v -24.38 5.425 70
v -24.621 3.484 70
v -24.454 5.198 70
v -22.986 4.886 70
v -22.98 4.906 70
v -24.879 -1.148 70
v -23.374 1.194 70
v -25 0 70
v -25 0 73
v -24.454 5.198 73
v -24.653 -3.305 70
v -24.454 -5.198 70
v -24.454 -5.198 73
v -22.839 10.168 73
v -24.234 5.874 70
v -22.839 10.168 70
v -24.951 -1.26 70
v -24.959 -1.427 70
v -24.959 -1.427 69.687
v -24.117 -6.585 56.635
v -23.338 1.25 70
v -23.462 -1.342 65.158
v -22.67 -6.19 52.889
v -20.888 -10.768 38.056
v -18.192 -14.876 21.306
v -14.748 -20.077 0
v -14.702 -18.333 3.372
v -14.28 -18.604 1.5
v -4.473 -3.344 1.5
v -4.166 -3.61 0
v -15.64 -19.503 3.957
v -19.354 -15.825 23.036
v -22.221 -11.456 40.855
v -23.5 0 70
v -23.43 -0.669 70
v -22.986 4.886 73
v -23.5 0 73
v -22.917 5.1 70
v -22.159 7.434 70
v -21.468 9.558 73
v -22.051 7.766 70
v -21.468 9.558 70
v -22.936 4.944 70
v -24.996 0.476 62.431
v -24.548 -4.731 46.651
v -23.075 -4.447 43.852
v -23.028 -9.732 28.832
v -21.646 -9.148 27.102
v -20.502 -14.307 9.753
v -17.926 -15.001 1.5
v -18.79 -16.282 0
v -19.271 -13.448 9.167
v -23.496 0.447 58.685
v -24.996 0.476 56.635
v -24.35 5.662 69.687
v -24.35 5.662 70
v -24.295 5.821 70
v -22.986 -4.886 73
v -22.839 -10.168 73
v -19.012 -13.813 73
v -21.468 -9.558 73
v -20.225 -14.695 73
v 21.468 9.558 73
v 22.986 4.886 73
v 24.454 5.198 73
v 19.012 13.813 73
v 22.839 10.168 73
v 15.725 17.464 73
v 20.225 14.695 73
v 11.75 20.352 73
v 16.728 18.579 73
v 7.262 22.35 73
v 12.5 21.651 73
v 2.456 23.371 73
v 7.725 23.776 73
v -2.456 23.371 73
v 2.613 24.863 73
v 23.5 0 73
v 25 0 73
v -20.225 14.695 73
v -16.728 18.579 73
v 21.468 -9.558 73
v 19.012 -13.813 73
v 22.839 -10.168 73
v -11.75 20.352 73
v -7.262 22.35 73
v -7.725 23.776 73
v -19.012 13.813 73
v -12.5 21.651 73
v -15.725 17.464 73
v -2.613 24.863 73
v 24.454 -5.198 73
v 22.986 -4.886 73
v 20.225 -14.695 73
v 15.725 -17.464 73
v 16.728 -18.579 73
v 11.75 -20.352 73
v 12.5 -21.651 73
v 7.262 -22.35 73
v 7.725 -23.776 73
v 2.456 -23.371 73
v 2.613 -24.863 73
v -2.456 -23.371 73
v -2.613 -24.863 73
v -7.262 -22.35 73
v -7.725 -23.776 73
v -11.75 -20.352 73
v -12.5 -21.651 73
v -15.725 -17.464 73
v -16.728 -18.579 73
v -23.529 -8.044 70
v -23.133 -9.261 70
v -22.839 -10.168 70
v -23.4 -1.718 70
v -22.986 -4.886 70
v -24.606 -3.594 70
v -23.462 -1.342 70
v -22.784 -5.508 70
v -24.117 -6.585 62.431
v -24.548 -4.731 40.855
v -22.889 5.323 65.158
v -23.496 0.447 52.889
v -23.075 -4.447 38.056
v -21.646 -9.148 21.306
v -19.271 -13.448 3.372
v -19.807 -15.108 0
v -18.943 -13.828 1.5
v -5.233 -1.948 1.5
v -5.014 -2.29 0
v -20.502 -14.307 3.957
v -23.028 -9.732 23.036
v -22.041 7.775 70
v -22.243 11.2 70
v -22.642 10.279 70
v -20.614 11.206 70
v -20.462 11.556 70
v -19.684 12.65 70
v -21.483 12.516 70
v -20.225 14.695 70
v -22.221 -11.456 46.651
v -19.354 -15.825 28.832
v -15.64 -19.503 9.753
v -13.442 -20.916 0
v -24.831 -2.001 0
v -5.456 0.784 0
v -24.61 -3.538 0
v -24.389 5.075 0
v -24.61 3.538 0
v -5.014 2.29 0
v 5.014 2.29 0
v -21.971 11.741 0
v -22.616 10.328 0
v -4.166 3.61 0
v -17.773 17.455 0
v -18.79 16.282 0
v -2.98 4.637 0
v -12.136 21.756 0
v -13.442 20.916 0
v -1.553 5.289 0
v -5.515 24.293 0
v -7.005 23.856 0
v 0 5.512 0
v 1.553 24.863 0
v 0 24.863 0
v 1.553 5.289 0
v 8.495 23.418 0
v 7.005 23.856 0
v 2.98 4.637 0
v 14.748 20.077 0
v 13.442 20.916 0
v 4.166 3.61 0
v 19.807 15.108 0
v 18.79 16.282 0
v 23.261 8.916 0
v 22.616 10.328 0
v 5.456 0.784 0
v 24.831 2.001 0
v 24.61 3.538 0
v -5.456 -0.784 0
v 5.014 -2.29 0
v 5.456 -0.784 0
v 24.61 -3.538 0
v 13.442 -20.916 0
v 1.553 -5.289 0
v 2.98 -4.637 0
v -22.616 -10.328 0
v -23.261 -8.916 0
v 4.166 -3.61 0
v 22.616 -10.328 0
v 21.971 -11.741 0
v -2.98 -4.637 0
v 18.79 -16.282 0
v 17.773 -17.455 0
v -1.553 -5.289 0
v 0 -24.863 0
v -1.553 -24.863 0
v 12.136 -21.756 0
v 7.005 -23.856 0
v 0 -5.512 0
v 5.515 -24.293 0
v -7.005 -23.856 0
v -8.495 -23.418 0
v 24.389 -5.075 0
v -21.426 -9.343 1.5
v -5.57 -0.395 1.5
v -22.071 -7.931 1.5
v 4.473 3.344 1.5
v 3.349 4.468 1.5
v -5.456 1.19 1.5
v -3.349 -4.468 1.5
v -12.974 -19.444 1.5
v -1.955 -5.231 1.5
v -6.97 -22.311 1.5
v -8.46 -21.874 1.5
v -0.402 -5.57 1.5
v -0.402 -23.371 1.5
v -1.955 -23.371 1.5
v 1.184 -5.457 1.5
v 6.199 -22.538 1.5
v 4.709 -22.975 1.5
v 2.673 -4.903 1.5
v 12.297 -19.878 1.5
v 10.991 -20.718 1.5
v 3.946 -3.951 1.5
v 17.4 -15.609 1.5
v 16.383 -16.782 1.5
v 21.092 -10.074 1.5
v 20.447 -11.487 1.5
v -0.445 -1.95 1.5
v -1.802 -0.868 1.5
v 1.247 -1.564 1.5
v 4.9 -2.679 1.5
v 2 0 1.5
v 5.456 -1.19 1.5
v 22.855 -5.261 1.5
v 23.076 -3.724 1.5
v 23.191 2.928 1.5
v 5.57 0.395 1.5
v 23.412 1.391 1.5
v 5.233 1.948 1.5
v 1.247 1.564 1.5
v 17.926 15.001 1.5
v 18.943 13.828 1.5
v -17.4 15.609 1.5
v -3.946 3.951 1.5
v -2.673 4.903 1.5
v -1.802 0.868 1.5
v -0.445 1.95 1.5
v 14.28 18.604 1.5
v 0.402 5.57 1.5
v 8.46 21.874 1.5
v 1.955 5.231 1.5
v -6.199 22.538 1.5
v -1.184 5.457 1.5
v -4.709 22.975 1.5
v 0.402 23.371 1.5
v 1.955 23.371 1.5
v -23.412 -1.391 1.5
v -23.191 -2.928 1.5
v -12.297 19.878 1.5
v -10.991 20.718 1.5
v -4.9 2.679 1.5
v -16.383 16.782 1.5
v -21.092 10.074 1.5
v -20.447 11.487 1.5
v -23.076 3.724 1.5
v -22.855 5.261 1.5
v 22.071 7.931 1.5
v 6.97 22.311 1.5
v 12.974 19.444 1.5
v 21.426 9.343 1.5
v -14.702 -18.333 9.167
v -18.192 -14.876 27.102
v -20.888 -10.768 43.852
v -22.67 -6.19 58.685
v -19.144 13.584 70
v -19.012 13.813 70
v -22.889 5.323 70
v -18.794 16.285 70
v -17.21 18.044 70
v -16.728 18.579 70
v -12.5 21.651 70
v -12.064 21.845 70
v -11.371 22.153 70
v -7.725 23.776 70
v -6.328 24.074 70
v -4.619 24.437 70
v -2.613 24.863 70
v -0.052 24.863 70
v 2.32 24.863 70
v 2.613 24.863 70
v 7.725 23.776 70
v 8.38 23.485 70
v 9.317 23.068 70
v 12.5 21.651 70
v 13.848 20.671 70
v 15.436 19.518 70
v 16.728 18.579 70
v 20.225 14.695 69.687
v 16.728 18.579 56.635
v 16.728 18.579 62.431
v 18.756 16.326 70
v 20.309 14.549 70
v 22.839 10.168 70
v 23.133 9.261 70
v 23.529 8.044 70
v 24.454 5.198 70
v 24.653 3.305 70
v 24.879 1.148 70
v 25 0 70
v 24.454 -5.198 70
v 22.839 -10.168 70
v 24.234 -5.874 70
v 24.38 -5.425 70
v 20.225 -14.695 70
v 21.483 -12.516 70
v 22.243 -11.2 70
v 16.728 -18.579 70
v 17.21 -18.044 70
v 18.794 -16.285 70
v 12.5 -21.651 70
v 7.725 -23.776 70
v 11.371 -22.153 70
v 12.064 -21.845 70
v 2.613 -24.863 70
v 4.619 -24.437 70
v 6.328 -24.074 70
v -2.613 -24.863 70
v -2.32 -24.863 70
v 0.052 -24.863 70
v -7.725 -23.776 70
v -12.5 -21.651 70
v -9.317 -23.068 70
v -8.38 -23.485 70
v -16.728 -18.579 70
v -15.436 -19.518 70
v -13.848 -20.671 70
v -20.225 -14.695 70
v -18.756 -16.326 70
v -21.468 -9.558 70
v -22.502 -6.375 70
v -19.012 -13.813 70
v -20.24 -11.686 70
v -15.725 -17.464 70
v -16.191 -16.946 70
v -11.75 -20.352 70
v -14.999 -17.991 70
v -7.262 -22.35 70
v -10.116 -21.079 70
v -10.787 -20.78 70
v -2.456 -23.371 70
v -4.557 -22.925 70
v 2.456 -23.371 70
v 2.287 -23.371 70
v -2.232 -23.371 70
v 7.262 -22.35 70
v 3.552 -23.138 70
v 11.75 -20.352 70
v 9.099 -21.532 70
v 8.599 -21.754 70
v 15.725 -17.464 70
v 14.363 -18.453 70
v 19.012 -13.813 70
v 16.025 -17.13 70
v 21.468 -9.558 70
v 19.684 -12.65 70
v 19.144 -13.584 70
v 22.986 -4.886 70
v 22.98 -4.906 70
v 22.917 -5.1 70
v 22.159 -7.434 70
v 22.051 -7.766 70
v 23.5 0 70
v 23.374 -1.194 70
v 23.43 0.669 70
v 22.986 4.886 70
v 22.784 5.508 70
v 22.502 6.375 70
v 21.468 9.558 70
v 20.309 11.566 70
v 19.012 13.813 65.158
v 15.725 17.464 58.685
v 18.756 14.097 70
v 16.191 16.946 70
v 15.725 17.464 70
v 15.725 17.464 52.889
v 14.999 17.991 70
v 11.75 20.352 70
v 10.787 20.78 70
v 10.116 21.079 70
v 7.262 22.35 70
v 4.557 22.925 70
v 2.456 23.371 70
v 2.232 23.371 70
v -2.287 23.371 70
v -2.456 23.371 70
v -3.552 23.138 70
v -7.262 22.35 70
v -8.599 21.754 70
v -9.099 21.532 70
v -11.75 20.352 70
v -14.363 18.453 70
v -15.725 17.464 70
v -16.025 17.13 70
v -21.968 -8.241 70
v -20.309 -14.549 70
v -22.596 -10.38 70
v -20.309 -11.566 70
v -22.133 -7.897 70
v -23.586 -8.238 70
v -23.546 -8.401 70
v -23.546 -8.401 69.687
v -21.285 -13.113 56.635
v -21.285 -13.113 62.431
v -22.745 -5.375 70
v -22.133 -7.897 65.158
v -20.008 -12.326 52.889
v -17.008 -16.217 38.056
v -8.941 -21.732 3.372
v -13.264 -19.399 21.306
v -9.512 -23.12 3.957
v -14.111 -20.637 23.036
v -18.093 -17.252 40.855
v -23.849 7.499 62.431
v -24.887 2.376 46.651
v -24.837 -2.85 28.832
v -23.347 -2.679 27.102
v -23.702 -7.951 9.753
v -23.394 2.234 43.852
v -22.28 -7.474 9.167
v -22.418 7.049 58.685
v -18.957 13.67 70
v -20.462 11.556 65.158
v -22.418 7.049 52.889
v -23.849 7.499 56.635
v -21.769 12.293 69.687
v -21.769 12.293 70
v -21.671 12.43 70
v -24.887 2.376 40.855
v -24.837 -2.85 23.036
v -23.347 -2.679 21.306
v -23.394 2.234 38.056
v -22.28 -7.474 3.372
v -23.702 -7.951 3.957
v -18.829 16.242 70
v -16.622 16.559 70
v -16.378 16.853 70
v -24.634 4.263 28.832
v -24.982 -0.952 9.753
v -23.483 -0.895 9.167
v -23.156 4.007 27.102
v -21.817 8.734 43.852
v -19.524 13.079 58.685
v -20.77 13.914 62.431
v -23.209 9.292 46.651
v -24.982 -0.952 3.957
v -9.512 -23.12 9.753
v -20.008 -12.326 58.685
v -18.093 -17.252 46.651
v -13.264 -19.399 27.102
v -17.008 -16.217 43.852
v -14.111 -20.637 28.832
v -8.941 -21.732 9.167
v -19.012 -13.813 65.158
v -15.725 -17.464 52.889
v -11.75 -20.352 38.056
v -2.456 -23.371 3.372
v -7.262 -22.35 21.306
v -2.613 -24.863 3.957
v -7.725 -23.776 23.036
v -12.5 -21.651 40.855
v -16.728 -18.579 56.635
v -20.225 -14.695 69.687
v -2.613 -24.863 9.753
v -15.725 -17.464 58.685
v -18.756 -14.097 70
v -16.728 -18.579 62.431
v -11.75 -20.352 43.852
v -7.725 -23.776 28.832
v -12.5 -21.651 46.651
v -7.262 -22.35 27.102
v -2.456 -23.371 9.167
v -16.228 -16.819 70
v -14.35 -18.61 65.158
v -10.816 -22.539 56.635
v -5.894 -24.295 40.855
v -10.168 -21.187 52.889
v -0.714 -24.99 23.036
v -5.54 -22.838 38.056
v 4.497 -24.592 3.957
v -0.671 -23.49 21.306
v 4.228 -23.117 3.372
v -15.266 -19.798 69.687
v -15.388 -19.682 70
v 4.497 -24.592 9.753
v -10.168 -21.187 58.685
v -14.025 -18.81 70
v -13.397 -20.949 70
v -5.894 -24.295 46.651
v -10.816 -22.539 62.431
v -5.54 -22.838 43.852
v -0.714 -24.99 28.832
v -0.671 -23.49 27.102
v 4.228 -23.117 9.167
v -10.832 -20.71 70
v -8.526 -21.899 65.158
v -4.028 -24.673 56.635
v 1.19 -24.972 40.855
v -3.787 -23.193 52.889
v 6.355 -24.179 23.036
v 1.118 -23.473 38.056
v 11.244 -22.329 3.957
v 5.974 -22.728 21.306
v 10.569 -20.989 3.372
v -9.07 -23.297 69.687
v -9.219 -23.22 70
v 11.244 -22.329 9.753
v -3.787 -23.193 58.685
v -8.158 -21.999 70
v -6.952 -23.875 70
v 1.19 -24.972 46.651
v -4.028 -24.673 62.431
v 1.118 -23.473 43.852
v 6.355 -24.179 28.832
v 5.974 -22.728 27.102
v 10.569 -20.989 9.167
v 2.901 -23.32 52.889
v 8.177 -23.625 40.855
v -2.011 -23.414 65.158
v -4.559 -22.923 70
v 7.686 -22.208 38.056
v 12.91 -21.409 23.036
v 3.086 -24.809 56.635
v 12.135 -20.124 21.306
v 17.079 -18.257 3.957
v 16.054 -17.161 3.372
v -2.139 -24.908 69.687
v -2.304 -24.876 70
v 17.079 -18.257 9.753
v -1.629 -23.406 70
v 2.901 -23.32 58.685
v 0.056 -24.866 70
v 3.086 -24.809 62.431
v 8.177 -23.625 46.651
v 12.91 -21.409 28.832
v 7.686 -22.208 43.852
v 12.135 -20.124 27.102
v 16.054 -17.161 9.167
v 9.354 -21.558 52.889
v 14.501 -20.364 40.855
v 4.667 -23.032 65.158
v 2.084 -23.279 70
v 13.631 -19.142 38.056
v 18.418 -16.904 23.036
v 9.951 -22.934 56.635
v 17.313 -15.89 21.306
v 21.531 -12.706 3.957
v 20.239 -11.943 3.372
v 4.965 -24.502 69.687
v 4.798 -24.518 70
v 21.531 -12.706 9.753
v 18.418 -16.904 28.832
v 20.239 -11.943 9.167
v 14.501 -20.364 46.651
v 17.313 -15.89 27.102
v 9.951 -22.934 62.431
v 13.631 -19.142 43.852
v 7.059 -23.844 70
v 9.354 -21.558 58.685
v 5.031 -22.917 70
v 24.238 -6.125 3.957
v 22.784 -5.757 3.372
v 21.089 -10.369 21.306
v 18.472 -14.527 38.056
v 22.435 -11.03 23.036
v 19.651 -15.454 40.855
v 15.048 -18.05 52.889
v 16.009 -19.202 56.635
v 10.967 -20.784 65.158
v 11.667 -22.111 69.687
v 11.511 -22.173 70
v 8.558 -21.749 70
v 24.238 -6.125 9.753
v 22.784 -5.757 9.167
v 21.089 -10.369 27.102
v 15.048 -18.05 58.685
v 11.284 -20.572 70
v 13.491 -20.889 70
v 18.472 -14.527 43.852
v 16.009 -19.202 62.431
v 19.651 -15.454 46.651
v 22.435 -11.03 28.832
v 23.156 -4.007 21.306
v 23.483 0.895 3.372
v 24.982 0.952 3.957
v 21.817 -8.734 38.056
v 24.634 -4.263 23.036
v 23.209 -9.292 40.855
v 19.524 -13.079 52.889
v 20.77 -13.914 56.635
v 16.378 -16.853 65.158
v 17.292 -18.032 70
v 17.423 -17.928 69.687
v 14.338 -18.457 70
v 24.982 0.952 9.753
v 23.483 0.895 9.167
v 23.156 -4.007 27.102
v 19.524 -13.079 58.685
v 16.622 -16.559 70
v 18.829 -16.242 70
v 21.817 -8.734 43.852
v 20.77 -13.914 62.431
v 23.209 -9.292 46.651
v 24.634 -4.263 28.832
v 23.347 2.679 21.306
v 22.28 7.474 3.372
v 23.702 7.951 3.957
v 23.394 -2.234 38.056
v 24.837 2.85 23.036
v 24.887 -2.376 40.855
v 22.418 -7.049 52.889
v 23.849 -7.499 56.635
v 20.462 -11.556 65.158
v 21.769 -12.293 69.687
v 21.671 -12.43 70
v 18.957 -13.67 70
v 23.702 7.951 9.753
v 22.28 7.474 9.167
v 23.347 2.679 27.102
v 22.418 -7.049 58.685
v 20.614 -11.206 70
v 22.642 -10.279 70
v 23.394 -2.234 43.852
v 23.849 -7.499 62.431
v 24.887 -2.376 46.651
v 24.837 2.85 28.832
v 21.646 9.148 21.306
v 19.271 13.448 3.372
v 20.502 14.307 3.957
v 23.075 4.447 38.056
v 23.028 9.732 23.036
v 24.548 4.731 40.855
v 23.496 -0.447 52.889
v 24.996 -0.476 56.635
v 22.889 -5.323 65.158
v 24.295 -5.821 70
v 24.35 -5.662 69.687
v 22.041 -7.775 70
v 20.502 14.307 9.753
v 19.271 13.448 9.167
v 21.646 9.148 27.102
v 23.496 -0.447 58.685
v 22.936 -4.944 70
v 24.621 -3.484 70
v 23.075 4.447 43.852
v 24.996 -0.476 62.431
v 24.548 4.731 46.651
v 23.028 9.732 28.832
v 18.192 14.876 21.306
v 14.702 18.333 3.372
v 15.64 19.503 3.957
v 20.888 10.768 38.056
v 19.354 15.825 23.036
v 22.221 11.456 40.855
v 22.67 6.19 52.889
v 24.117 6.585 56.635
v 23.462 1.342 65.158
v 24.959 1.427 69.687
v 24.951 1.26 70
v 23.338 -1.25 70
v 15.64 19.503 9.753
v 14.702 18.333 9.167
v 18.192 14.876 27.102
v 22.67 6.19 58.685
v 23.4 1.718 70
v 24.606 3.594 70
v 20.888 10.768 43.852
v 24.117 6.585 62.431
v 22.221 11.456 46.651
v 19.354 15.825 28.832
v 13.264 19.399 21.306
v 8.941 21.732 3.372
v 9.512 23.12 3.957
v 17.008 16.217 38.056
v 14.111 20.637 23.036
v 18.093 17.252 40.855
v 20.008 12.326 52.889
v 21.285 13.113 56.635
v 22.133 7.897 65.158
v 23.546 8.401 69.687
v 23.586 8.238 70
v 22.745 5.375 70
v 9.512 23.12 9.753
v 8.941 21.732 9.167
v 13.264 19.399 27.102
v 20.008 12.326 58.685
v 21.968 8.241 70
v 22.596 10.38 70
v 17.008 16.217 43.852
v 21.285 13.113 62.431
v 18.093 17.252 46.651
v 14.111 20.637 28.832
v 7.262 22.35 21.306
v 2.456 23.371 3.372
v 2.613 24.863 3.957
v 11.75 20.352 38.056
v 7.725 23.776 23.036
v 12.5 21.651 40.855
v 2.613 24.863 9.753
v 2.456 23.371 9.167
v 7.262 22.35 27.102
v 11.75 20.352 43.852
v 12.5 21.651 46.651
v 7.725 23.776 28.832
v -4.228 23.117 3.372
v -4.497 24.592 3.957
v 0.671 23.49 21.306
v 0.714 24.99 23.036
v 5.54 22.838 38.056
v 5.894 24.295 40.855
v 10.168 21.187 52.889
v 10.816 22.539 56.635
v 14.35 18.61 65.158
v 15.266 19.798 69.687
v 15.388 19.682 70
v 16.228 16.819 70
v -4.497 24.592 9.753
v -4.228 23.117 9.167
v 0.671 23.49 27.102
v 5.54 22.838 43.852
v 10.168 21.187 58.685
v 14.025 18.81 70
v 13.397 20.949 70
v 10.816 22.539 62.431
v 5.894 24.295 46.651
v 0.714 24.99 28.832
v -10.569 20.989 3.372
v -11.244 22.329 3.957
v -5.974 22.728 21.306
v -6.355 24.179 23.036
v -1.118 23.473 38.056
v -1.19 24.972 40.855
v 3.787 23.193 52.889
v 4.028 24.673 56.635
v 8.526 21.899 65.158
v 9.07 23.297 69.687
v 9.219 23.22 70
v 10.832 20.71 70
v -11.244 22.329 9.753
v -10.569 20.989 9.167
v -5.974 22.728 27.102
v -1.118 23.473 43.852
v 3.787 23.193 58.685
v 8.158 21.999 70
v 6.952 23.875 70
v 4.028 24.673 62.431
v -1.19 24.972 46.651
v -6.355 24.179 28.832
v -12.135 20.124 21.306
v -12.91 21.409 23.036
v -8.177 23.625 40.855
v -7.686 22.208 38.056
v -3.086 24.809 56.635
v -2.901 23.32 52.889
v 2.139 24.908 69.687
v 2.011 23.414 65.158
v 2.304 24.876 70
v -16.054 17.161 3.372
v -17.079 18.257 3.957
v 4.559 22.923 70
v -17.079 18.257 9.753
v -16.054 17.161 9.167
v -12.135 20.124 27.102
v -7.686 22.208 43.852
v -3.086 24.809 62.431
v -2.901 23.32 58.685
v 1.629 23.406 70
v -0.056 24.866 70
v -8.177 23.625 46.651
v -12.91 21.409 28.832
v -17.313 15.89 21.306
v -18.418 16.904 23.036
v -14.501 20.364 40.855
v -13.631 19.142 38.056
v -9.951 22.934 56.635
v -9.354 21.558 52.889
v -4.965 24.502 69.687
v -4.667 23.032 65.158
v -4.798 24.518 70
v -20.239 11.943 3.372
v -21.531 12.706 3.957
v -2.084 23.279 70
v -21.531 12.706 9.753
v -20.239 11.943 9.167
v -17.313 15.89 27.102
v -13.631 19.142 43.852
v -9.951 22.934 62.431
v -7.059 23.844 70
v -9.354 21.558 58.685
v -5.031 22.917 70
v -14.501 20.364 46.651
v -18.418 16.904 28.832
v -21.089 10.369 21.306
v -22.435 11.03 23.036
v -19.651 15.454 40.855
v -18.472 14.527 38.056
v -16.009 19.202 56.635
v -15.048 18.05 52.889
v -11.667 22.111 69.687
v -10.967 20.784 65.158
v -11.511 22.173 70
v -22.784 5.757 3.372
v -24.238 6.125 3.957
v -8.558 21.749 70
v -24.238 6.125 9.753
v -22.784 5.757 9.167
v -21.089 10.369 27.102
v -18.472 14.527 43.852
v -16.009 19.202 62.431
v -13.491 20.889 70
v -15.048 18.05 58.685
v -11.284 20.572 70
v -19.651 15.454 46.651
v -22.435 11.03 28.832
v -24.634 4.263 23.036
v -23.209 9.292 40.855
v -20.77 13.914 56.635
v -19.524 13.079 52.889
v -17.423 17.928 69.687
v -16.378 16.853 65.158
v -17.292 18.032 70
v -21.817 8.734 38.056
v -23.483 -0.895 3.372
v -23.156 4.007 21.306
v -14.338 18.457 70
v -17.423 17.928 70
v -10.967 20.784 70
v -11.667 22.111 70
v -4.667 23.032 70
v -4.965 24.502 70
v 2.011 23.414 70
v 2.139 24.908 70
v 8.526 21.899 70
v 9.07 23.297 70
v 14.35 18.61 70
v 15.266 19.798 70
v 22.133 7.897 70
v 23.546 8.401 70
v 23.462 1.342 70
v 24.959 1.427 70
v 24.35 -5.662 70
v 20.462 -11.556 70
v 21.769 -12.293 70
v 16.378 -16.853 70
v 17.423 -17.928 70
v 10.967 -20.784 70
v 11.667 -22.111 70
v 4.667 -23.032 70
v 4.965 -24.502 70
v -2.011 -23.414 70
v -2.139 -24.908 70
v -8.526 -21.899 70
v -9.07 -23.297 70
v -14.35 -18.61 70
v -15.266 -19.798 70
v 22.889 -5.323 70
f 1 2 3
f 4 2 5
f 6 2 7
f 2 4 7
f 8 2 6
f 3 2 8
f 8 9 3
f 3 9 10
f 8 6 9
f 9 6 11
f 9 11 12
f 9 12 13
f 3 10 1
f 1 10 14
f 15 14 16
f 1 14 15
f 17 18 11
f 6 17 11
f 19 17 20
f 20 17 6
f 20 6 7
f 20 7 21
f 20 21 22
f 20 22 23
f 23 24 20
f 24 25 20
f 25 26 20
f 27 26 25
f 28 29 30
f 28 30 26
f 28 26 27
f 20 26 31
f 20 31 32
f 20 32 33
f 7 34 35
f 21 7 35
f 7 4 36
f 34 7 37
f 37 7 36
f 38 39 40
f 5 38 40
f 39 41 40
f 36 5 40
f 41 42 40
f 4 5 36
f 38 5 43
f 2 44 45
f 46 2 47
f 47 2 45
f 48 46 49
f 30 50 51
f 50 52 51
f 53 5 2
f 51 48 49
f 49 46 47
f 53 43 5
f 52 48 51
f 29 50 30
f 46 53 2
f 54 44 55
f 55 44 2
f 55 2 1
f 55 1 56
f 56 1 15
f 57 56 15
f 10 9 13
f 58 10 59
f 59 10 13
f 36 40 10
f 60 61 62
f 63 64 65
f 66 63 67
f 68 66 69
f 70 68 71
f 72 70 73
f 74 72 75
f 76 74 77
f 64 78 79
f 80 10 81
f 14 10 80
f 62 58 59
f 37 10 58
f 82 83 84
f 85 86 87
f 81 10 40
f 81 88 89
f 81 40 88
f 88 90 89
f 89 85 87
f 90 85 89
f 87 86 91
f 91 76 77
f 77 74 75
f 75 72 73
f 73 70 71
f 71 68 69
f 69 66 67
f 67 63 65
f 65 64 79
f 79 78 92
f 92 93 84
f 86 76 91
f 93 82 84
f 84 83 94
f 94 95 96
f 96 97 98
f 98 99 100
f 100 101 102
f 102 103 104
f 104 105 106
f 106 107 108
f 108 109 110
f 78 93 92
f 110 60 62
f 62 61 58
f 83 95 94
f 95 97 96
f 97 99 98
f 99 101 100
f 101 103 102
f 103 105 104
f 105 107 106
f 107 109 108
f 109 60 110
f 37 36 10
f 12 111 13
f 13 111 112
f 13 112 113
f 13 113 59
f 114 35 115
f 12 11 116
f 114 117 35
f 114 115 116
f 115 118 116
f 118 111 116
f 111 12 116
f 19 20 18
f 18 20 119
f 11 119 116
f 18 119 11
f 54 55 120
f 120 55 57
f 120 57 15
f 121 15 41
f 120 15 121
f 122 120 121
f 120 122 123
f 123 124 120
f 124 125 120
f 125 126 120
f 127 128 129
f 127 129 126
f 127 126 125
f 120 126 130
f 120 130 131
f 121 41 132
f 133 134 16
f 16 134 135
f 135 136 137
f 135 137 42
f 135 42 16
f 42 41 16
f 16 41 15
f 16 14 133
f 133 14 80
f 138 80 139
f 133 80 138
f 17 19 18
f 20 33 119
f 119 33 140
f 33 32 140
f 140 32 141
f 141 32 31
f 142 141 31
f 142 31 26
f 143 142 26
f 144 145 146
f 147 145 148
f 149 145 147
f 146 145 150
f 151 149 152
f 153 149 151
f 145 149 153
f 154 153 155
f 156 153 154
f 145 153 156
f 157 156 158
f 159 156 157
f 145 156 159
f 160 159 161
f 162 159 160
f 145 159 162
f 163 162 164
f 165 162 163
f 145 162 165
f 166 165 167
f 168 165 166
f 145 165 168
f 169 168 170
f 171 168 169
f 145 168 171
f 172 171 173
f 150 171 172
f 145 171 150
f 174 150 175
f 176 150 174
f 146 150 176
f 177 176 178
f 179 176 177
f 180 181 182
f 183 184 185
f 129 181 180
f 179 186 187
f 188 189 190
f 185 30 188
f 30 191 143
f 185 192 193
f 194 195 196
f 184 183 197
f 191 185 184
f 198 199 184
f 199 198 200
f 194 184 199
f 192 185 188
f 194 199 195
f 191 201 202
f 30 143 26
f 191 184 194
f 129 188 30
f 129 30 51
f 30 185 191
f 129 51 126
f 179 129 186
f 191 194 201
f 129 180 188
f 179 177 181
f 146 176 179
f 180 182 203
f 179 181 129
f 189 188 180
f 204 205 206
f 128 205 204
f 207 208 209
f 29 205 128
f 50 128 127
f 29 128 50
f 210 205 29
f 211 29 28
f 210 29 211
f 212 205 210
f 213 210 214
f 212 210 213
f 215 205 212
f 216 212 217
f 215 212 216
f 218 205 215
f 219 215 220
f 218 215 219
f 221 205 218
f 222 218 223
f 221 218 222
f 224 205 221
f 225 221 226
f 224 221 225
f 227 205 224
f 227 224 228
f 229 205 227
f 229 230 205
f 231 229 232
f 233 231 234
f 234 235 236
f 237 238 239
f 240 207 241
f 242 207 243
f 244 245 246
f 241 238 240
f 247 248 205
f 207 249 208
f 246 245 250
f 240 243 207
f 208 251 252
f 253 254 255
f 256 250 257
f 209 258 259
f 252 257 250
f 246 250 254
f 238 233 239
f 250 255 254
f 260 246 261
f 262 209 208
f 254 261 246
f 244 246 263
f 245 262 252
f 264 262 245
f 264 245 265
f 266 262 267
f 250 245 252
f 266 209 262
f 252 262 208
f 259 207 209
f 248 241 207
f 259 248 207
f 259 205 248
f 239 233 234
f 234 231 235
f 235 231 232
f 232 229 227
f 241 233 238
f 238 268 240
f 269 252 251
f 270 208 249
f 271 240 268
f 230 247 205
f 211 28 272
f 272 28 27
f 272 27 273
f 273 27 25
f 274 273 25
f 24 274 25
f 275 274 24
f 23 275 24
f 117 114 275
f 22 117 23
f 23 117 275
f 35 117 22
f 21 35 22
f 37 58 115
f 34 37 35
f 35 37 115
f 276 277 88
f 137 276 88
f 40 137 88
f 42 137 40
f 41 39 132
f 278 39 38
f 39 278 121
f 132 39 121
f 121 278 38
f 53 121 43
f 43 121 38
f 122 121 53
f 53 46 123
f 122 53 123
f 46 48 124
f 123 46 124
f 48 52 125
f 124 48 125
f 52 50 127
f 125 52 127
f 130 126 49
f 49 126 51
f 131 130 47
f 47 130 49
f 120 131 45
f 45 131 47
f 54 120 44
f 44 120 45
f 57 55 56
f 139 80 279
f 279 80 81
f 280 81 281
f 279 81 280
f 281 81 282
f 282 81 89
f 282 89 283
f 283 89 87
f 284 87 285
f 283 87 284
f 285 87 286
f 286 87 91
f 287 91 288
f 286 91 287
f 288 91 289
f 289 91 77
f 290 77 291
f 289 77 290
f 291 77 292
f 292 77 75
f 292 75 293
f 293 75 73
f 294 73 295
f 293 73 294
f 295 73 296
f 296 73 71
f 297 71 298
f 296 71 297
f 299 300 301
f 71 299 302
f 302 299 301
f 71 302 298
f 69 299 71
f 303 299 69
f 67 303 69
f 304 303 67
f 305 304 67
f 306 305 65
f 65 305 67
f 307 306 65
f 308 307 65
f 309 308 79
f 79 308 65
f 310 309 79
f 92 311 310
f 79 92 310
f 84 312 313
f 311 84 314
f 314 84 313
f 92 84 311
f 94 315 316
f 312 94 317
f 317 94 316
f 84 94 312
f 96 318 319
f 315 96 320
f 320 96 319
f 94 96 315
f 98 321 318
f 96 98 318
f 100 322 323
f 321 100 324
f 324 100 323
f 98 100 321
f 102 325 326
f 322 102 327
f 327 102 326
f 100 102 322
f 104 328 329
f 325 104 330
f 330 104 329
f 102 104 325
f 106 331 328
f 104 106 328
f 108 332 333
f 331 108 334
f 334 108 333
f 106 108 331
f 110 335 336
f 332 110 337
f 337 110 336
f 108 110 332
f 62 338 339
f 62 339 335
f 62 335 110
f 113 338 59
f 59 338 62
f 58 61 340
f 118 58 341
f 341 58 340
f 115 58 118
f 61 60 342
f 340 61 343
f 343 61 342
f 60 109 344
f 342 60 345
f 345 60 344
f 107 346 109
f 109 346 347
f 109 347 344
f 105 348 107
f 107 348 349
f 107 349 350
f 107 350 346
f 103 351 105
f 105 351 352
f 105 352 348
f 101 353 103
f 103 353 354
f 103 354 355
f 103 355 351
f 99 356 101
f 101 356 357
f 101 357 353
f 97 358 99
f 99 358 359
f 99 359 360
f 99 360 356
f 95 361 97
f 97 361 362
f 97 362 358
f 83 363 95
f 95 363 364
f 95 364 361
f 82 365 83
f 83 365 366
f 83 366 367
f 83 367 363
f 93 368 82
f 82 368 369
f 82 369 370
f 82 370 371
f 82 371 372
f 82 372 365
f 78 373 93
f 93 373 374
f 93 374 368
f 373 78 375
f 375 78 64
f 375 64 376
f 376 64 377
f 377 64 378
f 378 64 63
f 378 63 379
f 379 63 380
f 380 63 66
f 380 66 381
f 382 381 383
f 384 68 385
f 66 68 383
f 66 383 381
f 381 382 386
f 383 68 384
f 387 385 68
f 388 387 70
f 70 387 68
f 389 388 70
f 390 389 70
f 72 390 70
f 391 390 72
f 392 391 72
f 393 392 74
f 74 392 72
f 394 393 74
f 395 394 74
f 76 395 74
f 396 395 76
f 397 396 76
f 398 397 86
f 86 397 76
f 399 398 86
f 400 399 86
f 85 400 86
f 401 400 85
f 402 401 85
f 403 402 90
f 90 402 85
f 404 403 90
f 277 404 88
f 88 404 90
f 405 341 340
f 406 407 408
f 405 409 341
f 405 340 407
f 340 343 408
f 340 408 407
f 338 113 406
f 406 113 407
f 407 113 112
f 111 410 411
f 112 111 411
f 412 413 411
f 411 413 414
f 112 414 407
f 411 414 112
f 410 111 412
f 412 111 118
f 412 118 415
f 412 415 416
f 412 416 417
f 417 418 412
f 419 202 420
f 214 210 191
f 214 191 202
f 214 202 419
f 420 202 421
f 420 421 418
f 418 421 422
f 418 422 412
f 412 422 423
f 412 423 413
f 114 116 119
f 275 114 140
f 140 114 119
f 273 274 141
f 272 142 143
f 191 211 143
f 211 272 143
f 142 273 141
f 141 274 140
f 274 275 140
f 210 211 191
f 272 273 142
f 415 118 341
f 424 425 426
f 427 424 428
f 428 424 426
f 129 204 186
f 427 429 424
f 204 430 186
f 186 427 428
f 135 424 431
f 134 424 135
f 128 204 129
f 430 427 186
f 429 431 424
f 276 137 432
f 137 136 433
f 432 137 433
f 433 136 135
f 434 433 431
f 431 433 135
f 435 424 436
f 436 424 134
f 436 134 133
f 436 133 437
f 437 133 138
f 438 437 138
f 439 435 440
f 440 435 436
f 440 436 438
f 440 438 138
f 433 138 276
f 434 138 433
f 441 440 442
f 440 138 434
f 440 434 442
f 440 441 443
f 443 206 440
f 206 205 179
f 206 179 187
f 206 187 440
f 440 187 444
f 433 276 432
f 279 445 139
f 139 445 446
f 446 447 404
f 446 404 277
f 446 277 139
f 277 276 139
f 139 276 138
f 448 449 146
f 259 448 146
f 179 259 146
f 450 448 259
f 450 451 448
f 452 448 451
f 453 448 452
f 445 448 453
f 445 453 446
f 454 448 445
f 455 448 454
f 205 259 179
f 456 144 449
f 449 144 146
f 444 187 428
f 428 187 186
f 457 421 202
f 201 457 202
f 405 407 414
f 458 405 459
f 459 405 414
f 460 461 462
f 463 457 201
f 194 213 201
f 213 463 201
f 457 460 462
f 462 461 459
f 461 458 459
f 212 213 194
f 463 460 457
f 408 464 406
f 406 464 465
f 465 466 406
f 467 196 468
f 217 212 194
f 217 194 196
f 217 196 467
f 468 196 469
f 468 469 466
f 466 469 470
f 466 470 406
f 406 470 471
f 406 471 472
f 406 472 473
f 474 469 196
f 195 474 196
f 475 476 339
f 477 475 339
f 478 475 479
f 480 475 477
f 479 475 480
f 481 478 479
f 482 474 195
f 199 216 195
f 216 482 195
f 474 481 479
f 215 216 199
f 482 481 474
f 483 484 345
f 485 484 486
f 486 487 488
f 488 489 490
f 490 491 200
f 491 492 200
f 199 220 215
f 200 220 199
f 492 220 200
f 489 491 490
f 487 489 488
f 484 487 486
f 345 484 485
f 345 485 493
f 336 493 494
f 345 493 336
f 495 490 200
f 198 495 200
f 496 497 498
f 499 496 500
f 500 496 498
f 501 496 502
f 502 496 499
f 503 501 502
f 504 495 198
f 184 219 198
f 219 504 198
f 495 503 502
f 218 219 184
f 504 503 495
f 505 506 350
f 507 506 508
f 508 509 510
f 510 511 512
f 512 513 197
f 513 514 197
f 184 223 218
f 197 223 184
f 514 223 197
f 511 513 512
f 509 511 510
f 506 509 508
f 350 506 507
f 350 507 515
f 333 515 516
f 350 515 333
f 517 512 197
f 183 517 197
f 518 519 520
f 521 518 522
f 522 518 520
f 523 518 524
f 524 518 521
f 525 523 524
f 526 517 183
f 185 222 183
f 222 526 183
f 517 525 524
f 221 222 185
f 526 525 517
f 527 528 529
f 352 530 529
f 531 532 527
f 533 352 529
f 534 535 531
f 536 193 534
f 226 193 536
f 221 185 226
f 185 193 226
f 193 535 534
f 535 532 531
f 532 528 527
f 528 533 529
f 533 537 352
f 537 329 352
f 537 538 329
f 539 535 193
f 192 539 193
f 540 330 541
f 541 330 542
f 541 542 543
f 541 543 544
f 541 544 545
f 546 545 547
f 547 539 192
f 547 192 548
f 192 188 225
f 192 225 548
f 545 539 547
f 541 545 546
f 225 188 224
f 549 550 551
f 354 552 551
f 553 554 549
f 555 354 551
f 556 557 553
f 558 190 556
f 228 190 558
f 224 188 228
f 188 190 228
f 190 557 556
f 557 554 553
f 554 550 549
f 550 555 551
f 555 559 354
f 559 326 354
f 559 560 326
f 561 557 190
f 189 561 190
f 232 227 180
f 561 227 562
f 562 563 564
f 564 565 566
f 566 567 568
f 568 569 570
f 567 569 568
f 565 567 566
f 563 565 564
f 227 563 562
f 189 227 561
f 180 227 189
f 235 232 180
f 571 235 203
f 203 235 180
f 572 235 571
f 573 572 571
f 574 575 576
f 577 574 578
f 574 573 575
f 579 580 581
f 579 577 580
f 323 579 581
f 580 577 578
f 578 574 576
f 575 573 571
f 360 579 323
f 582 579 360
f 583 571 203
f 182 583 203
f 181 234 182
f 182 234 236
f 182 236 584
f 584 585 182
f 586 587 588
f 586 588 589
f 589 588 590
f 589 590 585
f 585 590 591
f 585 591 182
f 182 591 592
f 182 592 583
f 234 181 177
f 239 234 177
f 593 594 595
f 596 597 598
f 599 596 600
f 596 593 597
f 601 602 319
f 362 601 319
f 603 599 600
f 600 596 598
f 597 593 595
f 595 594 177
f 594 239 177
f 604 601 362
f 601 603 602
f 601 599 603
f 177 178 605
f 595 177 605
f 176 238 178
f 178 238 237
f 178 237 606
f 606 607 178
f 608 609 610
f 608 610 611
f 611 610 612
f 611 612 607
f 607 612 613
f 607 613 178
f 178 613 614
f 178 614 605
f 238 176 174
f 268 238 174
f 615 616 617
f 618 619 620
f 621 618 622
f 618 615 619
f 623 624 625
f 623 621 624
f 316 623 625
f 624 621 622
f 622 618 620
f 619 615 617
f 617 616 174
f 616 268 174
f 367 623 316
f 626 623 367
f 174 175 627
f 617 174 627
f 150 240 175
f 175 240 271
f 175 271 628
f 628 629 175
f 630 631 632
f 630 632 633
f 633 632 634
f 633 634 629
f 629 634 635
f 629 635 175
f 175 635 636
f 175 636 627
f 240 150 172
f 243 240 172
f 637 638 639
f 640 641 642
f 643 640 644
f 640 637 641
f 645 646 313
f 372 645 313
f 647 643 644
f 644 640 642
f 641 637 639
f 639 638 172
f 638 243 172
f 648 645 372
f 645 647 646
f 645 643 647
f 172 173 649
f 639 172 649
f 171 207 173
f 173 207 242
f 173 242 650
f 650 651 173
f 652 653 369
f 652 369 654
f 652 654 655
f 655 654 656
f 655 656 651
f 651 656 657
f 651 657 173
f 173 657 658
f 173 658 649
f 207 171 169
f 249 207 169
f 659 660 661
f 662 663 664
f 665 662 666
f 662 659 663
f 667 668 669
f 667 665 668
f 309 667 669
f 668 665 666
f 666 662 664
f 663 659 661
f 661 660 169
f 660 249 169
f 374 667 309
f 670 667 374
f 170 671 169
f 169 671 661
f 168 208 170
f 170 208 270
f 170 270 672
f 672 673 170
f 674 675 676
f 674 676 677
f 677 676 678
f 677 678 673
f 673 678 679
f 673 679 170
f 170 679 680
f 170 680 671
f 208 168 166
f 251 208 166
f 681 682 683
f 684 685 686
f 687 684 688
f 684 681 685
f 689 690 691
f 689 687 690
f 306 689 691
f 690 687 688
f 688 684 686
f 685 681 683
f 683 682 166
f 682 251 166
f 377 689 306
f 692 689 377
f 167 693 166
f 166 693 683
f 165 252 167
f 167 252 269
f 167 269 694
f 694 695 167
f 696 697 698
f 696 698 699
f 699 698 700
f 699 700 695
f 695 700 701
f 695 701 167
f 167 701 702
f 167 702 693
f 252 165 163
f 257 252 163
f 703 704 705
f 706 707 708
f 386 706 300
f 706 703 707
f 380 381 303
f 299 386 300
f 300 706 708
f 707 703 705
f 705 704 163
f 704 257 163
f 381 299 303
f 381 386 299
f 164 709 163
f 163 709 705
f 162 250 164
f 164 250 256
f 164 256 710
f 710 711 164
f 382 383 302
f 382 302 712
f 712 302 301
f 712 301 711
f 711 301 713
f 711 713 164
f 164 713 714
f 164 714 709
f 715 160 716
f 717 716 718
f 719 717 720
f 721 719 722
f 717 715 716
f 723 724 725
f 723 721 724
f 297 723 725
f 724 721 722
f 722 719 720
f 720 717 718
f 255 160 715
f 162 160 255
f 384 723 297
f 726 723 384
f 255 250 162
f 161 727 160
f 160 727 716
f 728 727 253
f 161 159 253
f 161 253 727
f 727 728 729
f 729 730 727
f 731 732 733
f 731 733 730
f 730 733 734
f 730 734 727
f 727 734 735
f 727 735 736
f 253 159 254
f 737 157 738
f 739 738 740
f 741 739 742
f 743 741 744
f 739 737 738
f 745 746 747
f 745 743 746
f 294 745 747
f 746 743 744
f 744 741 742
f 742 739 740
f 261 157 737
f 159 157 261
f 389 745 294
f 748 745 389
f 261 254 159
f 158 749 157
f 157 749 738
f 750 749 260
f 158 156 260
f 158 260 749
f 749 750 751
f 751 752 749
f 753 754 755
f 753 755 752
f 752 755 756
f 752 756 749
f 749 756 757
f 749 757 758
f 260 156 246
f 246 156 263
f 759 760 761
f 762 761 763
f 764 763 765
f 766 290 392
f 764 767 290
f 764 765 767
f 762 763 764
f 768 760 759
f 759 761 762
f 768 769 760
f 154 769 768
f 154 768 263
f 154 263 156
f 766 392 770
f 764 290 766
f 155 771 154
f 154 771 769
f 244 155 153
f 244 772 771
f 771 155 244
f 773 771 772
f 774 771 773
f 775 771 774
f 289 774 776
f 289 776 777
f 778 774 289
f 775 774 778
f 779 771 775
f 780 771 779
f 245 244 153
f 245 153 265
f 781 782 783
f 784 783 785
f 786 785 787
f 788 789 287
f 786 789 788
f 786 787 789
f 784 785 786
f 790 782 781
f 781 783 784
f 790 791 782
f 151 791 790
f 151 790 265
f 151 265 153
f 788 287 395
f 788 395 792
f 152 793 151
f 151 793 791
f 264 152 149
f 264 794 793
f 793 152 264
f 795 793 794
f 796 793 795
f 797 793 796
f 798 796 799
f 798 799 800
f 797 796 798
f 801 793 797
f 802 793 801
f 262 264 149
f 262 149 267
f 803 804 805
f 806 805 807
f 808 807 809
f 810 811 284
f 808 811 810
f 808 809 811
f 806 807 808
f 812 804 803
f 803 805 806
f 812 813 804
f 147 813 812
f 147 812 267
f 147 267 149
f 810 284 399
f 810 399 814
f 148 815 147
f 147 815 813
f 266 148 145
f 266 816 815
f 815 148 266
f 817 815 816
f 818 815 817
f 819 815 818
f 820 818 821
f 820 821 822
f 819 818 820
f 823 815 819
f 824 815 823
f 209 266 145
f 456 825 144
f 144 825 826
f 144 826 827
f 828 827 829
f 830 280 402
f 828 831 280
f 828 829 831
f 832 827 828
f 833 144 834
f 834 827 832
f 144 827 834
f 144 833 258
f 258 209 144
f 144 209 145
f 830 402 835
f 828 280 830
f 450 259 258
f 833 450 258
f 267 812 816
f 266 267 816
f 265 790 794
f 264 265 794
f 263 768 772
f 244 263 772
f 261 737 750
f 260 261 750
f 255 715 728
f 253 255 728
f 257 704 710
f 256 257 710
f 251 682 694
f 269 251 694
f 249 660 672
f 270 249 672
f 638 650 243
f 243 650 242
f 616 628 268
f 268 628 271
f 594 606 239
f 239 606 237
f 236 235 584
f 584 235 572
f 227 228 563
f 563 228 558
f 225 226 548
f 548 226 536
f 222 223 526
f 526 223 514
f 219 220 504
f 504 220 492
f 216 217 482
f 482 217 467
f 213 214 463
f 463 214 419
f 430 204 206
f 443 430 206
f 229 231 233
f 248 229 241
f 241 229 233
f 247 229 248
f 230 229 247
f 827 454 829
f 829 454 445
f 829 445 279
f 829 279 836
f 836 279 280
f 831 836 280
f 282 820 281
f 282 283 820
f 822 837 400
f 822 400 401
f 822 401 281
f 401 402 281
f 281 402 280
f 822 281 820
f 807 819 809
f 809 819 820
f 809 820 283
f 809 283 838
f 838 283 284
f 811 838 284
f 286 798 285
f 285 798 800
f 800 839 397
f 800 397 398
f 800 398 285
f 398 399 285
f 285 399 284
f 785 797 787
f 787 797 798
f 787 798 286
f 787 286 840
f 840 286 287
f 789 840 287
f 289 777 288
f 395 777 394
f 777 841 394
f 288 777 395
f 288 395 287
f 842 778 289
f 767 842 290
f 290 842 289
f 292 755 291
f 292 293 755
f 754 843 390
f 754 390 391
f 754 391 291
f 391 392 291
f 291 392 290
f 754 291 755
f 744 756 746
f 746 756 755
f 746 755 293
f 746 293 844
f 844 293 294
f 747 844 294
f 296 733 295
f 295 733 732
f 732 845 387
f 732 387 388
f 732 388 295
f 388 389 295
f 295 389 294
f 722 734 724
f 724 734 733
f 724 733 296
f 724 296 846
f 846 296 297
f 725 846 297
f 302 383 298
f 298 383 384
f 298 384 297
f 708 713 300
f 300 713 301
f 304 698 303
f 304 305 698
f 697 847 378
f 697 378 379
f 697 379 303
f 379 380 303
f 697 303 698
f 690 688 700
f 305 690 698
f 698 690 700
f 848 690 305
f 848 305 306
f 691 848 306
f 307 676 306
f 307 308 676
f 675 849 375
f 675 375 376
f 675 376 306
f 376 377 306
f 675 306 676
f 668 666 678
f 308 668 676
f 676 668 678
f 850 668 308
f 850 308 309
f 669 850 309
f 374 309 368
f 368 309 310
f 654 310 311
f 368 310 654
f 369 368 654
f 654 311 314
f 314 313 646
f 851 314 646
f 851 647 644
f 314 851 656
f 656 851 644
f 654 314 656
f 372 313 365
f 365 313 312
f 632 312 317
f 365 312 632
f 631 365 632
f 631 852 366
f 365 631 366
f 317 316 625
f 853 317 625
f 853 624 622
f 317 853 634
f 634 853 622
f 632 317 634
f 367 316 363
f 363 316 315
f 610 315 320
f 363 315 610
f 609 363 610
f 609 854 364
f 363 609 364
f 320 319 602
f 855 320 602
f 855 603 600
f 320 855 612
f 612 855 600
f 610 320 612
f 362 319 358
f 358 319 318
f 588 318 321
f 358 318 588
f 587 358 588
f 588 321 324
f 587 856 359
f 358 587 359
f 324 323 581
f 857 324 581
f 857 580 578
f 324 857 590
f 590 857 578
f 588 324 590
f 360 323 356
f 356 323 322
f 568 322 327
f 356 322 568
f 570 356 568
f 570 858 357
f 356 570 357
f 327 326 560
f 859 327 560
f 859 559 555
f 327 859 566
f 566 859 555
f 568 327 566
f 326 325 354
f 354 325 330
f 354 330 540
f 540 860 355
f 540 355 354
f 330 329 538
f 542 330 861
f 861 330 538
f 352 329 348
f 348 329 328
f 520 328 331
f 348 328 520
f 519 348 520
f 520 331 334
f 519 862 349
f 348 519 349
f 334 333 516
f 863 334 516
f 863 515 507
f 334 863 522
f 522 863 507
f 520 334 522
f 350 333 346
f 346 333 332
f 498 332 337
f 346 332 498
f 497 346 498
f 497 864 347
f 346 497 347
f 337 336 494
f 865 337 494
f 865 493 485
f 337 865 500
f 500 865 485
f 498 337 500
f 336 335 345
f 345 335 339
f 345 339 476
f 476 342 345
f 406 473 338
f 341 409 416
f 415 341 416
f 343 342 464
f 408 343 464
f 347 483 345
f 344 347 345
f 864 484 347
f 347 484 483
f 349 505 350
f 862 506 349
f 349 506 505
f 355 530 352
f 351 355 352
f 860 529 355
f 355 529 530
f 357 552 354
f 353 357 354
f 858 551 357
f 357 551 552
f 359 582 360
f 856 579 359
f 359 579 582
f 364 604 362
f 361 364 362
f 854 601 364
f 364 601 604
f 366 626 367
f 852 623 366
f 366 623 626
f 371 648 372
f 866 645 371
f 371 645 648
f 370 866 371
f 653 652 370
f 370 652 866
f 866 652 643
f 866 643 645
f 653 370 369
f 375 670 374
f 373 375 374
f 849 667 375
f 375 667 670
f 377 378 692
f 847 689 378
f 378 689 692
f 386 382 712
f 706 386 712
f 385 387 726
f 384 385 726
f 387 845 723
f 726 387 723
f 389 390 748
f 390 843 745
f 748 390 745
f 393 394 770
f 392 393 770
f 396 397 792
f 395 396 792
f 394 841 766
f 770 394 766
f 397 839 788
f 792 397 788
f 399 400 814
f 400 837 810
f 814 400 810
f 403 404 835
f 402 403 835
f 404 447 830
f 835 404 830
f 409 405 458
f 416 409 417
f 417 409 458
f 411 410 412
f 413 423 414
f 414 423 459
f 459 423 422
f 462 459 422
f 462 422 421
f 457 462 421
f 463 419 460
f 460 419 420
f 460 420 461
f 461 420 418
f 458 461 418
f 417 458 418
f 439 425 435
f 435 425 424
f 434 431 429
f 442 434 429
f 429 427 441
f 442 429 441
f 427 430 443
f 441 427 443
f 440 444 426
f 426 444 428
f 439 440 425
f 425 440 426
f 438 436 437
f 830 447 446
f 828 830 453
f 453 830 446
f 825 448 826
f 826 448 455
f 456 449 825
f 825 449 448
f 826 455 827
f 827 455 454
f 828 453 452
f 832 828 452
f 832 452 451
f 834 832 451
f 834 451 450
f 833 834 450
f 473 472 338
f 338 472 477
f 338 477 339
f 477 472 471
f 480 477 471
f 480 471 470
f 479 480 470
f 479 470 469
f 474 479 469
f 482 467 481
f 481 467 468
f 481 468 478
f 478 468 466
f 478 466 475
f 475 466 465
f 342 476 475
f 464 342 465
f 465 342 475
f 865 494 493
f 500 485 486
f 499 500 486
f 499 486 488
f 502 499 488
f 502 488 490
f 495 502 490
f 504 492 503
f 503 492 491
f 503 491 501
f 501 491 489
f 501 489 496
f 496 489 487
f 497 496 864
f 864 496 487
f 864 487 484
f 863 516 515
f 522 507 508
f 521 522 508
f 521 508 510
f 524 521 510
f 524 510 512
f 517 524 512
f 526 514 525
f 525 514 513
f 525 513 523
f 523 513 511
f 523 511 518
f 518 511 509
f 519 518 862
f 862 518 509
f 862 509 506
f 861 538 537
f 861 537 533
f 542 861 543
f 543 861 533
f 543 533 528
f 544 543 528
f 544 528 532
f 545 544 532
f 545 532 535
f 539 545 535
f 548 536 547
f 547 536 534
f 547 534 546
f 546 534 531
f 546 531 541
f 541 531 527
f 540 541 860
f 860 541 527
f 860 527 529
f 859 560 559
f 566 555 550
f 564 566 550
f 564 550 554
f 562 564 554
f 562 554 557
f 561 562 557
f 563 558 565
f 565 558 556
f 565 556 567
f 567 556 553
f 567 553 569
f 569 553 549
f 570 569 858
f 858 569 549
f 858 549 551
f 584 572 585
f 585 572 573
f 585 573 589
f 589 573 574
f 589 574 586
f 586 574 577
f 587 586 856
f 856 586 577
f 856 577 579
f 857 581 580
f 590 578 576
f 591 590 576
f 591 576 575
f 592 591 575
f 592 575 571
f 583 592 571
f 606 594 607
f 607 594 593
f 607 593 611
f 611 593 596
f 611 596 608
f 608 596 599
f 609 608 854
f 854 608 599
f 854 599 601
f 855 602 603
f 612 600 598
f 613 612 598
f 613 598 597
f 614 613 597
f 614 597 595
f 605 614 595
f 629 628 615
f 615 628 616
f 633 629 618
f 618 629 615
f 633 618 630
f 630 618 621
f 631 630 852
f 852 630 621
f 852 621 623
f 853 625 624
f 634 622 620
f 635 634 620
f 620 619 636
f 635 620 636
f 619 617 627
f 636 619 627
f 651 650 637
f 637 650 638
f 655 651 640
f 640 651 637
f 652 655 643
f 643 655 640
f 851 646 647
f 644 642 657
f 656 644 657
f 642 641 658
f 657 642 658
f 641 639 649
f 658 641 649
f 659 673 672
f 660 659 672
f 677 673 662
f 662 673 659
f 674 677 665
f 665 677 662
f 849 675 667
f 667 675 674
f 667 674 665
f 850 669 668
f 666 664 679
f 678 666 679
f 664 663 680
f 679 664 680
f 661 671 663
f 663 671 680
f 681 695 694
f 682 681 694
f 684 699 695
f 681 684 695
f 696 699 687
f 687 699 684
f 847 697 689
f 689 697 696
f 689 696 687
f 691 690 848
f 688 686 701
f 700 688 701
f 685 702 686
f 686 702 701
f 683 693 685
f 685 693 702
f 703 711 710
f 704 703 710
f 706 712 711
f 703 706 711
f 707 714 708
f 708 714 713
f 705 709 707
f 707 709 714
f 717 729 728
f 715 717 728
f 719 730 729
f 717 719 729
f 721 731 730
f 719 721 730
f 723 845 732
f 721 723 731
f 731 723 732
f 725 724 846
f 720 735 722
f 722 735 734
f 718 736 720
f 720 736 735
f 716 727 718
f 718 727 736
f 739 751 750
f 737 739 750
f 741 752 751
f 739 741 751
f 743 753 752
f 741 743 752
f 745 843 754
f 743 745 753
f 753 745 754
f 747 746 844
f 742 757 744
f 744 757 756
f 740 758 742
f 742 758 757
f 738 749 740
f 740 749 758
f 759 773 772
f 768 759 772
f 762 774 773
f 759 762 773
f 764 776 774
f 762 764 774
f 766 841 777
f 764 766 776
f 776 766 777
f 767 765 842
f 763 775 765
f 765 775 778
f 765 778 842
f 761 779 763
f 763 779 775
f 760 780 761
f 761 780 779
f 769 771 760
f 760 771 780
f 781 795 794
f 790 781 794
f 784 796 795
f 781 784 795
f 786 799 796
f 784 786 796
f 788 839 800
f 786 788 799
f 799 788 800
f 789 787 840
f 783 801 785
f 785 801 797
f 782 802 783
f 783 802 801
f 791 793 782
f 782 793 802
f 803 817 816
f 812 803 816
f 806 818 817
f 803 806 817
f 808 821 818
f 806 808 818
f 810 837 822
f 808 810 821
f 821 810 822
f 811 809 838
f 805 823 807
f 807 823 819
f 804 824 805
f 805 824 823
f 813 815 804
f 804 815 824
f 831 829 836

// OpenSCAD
height = 70;
radius = 25;
wall = 1.5;

module slice(){
	intersection(){
		difference() {
			cylinder(height, radius, radius);
			translate([0,0,wall])cylinder(height, radius - wall, radius - wall);
		}
		rotate([0,15,0])cube([wall, radius, height * 1.5]);

	}
}

module base() {
union(){
	for(i = [0:(360 / 22):360]) {
		rotate([0,0,i]){
			slice();
		}
	}
	cylinder(wall,2,2);
	}
}

module rim() {
	translate([0,0,height]){
		difference() {
				cylinder(2 * wall, radius, radius);
				cylinder(2 * wall, radius - wall, radius - wall);
		}
	}
}

base();
rim();
